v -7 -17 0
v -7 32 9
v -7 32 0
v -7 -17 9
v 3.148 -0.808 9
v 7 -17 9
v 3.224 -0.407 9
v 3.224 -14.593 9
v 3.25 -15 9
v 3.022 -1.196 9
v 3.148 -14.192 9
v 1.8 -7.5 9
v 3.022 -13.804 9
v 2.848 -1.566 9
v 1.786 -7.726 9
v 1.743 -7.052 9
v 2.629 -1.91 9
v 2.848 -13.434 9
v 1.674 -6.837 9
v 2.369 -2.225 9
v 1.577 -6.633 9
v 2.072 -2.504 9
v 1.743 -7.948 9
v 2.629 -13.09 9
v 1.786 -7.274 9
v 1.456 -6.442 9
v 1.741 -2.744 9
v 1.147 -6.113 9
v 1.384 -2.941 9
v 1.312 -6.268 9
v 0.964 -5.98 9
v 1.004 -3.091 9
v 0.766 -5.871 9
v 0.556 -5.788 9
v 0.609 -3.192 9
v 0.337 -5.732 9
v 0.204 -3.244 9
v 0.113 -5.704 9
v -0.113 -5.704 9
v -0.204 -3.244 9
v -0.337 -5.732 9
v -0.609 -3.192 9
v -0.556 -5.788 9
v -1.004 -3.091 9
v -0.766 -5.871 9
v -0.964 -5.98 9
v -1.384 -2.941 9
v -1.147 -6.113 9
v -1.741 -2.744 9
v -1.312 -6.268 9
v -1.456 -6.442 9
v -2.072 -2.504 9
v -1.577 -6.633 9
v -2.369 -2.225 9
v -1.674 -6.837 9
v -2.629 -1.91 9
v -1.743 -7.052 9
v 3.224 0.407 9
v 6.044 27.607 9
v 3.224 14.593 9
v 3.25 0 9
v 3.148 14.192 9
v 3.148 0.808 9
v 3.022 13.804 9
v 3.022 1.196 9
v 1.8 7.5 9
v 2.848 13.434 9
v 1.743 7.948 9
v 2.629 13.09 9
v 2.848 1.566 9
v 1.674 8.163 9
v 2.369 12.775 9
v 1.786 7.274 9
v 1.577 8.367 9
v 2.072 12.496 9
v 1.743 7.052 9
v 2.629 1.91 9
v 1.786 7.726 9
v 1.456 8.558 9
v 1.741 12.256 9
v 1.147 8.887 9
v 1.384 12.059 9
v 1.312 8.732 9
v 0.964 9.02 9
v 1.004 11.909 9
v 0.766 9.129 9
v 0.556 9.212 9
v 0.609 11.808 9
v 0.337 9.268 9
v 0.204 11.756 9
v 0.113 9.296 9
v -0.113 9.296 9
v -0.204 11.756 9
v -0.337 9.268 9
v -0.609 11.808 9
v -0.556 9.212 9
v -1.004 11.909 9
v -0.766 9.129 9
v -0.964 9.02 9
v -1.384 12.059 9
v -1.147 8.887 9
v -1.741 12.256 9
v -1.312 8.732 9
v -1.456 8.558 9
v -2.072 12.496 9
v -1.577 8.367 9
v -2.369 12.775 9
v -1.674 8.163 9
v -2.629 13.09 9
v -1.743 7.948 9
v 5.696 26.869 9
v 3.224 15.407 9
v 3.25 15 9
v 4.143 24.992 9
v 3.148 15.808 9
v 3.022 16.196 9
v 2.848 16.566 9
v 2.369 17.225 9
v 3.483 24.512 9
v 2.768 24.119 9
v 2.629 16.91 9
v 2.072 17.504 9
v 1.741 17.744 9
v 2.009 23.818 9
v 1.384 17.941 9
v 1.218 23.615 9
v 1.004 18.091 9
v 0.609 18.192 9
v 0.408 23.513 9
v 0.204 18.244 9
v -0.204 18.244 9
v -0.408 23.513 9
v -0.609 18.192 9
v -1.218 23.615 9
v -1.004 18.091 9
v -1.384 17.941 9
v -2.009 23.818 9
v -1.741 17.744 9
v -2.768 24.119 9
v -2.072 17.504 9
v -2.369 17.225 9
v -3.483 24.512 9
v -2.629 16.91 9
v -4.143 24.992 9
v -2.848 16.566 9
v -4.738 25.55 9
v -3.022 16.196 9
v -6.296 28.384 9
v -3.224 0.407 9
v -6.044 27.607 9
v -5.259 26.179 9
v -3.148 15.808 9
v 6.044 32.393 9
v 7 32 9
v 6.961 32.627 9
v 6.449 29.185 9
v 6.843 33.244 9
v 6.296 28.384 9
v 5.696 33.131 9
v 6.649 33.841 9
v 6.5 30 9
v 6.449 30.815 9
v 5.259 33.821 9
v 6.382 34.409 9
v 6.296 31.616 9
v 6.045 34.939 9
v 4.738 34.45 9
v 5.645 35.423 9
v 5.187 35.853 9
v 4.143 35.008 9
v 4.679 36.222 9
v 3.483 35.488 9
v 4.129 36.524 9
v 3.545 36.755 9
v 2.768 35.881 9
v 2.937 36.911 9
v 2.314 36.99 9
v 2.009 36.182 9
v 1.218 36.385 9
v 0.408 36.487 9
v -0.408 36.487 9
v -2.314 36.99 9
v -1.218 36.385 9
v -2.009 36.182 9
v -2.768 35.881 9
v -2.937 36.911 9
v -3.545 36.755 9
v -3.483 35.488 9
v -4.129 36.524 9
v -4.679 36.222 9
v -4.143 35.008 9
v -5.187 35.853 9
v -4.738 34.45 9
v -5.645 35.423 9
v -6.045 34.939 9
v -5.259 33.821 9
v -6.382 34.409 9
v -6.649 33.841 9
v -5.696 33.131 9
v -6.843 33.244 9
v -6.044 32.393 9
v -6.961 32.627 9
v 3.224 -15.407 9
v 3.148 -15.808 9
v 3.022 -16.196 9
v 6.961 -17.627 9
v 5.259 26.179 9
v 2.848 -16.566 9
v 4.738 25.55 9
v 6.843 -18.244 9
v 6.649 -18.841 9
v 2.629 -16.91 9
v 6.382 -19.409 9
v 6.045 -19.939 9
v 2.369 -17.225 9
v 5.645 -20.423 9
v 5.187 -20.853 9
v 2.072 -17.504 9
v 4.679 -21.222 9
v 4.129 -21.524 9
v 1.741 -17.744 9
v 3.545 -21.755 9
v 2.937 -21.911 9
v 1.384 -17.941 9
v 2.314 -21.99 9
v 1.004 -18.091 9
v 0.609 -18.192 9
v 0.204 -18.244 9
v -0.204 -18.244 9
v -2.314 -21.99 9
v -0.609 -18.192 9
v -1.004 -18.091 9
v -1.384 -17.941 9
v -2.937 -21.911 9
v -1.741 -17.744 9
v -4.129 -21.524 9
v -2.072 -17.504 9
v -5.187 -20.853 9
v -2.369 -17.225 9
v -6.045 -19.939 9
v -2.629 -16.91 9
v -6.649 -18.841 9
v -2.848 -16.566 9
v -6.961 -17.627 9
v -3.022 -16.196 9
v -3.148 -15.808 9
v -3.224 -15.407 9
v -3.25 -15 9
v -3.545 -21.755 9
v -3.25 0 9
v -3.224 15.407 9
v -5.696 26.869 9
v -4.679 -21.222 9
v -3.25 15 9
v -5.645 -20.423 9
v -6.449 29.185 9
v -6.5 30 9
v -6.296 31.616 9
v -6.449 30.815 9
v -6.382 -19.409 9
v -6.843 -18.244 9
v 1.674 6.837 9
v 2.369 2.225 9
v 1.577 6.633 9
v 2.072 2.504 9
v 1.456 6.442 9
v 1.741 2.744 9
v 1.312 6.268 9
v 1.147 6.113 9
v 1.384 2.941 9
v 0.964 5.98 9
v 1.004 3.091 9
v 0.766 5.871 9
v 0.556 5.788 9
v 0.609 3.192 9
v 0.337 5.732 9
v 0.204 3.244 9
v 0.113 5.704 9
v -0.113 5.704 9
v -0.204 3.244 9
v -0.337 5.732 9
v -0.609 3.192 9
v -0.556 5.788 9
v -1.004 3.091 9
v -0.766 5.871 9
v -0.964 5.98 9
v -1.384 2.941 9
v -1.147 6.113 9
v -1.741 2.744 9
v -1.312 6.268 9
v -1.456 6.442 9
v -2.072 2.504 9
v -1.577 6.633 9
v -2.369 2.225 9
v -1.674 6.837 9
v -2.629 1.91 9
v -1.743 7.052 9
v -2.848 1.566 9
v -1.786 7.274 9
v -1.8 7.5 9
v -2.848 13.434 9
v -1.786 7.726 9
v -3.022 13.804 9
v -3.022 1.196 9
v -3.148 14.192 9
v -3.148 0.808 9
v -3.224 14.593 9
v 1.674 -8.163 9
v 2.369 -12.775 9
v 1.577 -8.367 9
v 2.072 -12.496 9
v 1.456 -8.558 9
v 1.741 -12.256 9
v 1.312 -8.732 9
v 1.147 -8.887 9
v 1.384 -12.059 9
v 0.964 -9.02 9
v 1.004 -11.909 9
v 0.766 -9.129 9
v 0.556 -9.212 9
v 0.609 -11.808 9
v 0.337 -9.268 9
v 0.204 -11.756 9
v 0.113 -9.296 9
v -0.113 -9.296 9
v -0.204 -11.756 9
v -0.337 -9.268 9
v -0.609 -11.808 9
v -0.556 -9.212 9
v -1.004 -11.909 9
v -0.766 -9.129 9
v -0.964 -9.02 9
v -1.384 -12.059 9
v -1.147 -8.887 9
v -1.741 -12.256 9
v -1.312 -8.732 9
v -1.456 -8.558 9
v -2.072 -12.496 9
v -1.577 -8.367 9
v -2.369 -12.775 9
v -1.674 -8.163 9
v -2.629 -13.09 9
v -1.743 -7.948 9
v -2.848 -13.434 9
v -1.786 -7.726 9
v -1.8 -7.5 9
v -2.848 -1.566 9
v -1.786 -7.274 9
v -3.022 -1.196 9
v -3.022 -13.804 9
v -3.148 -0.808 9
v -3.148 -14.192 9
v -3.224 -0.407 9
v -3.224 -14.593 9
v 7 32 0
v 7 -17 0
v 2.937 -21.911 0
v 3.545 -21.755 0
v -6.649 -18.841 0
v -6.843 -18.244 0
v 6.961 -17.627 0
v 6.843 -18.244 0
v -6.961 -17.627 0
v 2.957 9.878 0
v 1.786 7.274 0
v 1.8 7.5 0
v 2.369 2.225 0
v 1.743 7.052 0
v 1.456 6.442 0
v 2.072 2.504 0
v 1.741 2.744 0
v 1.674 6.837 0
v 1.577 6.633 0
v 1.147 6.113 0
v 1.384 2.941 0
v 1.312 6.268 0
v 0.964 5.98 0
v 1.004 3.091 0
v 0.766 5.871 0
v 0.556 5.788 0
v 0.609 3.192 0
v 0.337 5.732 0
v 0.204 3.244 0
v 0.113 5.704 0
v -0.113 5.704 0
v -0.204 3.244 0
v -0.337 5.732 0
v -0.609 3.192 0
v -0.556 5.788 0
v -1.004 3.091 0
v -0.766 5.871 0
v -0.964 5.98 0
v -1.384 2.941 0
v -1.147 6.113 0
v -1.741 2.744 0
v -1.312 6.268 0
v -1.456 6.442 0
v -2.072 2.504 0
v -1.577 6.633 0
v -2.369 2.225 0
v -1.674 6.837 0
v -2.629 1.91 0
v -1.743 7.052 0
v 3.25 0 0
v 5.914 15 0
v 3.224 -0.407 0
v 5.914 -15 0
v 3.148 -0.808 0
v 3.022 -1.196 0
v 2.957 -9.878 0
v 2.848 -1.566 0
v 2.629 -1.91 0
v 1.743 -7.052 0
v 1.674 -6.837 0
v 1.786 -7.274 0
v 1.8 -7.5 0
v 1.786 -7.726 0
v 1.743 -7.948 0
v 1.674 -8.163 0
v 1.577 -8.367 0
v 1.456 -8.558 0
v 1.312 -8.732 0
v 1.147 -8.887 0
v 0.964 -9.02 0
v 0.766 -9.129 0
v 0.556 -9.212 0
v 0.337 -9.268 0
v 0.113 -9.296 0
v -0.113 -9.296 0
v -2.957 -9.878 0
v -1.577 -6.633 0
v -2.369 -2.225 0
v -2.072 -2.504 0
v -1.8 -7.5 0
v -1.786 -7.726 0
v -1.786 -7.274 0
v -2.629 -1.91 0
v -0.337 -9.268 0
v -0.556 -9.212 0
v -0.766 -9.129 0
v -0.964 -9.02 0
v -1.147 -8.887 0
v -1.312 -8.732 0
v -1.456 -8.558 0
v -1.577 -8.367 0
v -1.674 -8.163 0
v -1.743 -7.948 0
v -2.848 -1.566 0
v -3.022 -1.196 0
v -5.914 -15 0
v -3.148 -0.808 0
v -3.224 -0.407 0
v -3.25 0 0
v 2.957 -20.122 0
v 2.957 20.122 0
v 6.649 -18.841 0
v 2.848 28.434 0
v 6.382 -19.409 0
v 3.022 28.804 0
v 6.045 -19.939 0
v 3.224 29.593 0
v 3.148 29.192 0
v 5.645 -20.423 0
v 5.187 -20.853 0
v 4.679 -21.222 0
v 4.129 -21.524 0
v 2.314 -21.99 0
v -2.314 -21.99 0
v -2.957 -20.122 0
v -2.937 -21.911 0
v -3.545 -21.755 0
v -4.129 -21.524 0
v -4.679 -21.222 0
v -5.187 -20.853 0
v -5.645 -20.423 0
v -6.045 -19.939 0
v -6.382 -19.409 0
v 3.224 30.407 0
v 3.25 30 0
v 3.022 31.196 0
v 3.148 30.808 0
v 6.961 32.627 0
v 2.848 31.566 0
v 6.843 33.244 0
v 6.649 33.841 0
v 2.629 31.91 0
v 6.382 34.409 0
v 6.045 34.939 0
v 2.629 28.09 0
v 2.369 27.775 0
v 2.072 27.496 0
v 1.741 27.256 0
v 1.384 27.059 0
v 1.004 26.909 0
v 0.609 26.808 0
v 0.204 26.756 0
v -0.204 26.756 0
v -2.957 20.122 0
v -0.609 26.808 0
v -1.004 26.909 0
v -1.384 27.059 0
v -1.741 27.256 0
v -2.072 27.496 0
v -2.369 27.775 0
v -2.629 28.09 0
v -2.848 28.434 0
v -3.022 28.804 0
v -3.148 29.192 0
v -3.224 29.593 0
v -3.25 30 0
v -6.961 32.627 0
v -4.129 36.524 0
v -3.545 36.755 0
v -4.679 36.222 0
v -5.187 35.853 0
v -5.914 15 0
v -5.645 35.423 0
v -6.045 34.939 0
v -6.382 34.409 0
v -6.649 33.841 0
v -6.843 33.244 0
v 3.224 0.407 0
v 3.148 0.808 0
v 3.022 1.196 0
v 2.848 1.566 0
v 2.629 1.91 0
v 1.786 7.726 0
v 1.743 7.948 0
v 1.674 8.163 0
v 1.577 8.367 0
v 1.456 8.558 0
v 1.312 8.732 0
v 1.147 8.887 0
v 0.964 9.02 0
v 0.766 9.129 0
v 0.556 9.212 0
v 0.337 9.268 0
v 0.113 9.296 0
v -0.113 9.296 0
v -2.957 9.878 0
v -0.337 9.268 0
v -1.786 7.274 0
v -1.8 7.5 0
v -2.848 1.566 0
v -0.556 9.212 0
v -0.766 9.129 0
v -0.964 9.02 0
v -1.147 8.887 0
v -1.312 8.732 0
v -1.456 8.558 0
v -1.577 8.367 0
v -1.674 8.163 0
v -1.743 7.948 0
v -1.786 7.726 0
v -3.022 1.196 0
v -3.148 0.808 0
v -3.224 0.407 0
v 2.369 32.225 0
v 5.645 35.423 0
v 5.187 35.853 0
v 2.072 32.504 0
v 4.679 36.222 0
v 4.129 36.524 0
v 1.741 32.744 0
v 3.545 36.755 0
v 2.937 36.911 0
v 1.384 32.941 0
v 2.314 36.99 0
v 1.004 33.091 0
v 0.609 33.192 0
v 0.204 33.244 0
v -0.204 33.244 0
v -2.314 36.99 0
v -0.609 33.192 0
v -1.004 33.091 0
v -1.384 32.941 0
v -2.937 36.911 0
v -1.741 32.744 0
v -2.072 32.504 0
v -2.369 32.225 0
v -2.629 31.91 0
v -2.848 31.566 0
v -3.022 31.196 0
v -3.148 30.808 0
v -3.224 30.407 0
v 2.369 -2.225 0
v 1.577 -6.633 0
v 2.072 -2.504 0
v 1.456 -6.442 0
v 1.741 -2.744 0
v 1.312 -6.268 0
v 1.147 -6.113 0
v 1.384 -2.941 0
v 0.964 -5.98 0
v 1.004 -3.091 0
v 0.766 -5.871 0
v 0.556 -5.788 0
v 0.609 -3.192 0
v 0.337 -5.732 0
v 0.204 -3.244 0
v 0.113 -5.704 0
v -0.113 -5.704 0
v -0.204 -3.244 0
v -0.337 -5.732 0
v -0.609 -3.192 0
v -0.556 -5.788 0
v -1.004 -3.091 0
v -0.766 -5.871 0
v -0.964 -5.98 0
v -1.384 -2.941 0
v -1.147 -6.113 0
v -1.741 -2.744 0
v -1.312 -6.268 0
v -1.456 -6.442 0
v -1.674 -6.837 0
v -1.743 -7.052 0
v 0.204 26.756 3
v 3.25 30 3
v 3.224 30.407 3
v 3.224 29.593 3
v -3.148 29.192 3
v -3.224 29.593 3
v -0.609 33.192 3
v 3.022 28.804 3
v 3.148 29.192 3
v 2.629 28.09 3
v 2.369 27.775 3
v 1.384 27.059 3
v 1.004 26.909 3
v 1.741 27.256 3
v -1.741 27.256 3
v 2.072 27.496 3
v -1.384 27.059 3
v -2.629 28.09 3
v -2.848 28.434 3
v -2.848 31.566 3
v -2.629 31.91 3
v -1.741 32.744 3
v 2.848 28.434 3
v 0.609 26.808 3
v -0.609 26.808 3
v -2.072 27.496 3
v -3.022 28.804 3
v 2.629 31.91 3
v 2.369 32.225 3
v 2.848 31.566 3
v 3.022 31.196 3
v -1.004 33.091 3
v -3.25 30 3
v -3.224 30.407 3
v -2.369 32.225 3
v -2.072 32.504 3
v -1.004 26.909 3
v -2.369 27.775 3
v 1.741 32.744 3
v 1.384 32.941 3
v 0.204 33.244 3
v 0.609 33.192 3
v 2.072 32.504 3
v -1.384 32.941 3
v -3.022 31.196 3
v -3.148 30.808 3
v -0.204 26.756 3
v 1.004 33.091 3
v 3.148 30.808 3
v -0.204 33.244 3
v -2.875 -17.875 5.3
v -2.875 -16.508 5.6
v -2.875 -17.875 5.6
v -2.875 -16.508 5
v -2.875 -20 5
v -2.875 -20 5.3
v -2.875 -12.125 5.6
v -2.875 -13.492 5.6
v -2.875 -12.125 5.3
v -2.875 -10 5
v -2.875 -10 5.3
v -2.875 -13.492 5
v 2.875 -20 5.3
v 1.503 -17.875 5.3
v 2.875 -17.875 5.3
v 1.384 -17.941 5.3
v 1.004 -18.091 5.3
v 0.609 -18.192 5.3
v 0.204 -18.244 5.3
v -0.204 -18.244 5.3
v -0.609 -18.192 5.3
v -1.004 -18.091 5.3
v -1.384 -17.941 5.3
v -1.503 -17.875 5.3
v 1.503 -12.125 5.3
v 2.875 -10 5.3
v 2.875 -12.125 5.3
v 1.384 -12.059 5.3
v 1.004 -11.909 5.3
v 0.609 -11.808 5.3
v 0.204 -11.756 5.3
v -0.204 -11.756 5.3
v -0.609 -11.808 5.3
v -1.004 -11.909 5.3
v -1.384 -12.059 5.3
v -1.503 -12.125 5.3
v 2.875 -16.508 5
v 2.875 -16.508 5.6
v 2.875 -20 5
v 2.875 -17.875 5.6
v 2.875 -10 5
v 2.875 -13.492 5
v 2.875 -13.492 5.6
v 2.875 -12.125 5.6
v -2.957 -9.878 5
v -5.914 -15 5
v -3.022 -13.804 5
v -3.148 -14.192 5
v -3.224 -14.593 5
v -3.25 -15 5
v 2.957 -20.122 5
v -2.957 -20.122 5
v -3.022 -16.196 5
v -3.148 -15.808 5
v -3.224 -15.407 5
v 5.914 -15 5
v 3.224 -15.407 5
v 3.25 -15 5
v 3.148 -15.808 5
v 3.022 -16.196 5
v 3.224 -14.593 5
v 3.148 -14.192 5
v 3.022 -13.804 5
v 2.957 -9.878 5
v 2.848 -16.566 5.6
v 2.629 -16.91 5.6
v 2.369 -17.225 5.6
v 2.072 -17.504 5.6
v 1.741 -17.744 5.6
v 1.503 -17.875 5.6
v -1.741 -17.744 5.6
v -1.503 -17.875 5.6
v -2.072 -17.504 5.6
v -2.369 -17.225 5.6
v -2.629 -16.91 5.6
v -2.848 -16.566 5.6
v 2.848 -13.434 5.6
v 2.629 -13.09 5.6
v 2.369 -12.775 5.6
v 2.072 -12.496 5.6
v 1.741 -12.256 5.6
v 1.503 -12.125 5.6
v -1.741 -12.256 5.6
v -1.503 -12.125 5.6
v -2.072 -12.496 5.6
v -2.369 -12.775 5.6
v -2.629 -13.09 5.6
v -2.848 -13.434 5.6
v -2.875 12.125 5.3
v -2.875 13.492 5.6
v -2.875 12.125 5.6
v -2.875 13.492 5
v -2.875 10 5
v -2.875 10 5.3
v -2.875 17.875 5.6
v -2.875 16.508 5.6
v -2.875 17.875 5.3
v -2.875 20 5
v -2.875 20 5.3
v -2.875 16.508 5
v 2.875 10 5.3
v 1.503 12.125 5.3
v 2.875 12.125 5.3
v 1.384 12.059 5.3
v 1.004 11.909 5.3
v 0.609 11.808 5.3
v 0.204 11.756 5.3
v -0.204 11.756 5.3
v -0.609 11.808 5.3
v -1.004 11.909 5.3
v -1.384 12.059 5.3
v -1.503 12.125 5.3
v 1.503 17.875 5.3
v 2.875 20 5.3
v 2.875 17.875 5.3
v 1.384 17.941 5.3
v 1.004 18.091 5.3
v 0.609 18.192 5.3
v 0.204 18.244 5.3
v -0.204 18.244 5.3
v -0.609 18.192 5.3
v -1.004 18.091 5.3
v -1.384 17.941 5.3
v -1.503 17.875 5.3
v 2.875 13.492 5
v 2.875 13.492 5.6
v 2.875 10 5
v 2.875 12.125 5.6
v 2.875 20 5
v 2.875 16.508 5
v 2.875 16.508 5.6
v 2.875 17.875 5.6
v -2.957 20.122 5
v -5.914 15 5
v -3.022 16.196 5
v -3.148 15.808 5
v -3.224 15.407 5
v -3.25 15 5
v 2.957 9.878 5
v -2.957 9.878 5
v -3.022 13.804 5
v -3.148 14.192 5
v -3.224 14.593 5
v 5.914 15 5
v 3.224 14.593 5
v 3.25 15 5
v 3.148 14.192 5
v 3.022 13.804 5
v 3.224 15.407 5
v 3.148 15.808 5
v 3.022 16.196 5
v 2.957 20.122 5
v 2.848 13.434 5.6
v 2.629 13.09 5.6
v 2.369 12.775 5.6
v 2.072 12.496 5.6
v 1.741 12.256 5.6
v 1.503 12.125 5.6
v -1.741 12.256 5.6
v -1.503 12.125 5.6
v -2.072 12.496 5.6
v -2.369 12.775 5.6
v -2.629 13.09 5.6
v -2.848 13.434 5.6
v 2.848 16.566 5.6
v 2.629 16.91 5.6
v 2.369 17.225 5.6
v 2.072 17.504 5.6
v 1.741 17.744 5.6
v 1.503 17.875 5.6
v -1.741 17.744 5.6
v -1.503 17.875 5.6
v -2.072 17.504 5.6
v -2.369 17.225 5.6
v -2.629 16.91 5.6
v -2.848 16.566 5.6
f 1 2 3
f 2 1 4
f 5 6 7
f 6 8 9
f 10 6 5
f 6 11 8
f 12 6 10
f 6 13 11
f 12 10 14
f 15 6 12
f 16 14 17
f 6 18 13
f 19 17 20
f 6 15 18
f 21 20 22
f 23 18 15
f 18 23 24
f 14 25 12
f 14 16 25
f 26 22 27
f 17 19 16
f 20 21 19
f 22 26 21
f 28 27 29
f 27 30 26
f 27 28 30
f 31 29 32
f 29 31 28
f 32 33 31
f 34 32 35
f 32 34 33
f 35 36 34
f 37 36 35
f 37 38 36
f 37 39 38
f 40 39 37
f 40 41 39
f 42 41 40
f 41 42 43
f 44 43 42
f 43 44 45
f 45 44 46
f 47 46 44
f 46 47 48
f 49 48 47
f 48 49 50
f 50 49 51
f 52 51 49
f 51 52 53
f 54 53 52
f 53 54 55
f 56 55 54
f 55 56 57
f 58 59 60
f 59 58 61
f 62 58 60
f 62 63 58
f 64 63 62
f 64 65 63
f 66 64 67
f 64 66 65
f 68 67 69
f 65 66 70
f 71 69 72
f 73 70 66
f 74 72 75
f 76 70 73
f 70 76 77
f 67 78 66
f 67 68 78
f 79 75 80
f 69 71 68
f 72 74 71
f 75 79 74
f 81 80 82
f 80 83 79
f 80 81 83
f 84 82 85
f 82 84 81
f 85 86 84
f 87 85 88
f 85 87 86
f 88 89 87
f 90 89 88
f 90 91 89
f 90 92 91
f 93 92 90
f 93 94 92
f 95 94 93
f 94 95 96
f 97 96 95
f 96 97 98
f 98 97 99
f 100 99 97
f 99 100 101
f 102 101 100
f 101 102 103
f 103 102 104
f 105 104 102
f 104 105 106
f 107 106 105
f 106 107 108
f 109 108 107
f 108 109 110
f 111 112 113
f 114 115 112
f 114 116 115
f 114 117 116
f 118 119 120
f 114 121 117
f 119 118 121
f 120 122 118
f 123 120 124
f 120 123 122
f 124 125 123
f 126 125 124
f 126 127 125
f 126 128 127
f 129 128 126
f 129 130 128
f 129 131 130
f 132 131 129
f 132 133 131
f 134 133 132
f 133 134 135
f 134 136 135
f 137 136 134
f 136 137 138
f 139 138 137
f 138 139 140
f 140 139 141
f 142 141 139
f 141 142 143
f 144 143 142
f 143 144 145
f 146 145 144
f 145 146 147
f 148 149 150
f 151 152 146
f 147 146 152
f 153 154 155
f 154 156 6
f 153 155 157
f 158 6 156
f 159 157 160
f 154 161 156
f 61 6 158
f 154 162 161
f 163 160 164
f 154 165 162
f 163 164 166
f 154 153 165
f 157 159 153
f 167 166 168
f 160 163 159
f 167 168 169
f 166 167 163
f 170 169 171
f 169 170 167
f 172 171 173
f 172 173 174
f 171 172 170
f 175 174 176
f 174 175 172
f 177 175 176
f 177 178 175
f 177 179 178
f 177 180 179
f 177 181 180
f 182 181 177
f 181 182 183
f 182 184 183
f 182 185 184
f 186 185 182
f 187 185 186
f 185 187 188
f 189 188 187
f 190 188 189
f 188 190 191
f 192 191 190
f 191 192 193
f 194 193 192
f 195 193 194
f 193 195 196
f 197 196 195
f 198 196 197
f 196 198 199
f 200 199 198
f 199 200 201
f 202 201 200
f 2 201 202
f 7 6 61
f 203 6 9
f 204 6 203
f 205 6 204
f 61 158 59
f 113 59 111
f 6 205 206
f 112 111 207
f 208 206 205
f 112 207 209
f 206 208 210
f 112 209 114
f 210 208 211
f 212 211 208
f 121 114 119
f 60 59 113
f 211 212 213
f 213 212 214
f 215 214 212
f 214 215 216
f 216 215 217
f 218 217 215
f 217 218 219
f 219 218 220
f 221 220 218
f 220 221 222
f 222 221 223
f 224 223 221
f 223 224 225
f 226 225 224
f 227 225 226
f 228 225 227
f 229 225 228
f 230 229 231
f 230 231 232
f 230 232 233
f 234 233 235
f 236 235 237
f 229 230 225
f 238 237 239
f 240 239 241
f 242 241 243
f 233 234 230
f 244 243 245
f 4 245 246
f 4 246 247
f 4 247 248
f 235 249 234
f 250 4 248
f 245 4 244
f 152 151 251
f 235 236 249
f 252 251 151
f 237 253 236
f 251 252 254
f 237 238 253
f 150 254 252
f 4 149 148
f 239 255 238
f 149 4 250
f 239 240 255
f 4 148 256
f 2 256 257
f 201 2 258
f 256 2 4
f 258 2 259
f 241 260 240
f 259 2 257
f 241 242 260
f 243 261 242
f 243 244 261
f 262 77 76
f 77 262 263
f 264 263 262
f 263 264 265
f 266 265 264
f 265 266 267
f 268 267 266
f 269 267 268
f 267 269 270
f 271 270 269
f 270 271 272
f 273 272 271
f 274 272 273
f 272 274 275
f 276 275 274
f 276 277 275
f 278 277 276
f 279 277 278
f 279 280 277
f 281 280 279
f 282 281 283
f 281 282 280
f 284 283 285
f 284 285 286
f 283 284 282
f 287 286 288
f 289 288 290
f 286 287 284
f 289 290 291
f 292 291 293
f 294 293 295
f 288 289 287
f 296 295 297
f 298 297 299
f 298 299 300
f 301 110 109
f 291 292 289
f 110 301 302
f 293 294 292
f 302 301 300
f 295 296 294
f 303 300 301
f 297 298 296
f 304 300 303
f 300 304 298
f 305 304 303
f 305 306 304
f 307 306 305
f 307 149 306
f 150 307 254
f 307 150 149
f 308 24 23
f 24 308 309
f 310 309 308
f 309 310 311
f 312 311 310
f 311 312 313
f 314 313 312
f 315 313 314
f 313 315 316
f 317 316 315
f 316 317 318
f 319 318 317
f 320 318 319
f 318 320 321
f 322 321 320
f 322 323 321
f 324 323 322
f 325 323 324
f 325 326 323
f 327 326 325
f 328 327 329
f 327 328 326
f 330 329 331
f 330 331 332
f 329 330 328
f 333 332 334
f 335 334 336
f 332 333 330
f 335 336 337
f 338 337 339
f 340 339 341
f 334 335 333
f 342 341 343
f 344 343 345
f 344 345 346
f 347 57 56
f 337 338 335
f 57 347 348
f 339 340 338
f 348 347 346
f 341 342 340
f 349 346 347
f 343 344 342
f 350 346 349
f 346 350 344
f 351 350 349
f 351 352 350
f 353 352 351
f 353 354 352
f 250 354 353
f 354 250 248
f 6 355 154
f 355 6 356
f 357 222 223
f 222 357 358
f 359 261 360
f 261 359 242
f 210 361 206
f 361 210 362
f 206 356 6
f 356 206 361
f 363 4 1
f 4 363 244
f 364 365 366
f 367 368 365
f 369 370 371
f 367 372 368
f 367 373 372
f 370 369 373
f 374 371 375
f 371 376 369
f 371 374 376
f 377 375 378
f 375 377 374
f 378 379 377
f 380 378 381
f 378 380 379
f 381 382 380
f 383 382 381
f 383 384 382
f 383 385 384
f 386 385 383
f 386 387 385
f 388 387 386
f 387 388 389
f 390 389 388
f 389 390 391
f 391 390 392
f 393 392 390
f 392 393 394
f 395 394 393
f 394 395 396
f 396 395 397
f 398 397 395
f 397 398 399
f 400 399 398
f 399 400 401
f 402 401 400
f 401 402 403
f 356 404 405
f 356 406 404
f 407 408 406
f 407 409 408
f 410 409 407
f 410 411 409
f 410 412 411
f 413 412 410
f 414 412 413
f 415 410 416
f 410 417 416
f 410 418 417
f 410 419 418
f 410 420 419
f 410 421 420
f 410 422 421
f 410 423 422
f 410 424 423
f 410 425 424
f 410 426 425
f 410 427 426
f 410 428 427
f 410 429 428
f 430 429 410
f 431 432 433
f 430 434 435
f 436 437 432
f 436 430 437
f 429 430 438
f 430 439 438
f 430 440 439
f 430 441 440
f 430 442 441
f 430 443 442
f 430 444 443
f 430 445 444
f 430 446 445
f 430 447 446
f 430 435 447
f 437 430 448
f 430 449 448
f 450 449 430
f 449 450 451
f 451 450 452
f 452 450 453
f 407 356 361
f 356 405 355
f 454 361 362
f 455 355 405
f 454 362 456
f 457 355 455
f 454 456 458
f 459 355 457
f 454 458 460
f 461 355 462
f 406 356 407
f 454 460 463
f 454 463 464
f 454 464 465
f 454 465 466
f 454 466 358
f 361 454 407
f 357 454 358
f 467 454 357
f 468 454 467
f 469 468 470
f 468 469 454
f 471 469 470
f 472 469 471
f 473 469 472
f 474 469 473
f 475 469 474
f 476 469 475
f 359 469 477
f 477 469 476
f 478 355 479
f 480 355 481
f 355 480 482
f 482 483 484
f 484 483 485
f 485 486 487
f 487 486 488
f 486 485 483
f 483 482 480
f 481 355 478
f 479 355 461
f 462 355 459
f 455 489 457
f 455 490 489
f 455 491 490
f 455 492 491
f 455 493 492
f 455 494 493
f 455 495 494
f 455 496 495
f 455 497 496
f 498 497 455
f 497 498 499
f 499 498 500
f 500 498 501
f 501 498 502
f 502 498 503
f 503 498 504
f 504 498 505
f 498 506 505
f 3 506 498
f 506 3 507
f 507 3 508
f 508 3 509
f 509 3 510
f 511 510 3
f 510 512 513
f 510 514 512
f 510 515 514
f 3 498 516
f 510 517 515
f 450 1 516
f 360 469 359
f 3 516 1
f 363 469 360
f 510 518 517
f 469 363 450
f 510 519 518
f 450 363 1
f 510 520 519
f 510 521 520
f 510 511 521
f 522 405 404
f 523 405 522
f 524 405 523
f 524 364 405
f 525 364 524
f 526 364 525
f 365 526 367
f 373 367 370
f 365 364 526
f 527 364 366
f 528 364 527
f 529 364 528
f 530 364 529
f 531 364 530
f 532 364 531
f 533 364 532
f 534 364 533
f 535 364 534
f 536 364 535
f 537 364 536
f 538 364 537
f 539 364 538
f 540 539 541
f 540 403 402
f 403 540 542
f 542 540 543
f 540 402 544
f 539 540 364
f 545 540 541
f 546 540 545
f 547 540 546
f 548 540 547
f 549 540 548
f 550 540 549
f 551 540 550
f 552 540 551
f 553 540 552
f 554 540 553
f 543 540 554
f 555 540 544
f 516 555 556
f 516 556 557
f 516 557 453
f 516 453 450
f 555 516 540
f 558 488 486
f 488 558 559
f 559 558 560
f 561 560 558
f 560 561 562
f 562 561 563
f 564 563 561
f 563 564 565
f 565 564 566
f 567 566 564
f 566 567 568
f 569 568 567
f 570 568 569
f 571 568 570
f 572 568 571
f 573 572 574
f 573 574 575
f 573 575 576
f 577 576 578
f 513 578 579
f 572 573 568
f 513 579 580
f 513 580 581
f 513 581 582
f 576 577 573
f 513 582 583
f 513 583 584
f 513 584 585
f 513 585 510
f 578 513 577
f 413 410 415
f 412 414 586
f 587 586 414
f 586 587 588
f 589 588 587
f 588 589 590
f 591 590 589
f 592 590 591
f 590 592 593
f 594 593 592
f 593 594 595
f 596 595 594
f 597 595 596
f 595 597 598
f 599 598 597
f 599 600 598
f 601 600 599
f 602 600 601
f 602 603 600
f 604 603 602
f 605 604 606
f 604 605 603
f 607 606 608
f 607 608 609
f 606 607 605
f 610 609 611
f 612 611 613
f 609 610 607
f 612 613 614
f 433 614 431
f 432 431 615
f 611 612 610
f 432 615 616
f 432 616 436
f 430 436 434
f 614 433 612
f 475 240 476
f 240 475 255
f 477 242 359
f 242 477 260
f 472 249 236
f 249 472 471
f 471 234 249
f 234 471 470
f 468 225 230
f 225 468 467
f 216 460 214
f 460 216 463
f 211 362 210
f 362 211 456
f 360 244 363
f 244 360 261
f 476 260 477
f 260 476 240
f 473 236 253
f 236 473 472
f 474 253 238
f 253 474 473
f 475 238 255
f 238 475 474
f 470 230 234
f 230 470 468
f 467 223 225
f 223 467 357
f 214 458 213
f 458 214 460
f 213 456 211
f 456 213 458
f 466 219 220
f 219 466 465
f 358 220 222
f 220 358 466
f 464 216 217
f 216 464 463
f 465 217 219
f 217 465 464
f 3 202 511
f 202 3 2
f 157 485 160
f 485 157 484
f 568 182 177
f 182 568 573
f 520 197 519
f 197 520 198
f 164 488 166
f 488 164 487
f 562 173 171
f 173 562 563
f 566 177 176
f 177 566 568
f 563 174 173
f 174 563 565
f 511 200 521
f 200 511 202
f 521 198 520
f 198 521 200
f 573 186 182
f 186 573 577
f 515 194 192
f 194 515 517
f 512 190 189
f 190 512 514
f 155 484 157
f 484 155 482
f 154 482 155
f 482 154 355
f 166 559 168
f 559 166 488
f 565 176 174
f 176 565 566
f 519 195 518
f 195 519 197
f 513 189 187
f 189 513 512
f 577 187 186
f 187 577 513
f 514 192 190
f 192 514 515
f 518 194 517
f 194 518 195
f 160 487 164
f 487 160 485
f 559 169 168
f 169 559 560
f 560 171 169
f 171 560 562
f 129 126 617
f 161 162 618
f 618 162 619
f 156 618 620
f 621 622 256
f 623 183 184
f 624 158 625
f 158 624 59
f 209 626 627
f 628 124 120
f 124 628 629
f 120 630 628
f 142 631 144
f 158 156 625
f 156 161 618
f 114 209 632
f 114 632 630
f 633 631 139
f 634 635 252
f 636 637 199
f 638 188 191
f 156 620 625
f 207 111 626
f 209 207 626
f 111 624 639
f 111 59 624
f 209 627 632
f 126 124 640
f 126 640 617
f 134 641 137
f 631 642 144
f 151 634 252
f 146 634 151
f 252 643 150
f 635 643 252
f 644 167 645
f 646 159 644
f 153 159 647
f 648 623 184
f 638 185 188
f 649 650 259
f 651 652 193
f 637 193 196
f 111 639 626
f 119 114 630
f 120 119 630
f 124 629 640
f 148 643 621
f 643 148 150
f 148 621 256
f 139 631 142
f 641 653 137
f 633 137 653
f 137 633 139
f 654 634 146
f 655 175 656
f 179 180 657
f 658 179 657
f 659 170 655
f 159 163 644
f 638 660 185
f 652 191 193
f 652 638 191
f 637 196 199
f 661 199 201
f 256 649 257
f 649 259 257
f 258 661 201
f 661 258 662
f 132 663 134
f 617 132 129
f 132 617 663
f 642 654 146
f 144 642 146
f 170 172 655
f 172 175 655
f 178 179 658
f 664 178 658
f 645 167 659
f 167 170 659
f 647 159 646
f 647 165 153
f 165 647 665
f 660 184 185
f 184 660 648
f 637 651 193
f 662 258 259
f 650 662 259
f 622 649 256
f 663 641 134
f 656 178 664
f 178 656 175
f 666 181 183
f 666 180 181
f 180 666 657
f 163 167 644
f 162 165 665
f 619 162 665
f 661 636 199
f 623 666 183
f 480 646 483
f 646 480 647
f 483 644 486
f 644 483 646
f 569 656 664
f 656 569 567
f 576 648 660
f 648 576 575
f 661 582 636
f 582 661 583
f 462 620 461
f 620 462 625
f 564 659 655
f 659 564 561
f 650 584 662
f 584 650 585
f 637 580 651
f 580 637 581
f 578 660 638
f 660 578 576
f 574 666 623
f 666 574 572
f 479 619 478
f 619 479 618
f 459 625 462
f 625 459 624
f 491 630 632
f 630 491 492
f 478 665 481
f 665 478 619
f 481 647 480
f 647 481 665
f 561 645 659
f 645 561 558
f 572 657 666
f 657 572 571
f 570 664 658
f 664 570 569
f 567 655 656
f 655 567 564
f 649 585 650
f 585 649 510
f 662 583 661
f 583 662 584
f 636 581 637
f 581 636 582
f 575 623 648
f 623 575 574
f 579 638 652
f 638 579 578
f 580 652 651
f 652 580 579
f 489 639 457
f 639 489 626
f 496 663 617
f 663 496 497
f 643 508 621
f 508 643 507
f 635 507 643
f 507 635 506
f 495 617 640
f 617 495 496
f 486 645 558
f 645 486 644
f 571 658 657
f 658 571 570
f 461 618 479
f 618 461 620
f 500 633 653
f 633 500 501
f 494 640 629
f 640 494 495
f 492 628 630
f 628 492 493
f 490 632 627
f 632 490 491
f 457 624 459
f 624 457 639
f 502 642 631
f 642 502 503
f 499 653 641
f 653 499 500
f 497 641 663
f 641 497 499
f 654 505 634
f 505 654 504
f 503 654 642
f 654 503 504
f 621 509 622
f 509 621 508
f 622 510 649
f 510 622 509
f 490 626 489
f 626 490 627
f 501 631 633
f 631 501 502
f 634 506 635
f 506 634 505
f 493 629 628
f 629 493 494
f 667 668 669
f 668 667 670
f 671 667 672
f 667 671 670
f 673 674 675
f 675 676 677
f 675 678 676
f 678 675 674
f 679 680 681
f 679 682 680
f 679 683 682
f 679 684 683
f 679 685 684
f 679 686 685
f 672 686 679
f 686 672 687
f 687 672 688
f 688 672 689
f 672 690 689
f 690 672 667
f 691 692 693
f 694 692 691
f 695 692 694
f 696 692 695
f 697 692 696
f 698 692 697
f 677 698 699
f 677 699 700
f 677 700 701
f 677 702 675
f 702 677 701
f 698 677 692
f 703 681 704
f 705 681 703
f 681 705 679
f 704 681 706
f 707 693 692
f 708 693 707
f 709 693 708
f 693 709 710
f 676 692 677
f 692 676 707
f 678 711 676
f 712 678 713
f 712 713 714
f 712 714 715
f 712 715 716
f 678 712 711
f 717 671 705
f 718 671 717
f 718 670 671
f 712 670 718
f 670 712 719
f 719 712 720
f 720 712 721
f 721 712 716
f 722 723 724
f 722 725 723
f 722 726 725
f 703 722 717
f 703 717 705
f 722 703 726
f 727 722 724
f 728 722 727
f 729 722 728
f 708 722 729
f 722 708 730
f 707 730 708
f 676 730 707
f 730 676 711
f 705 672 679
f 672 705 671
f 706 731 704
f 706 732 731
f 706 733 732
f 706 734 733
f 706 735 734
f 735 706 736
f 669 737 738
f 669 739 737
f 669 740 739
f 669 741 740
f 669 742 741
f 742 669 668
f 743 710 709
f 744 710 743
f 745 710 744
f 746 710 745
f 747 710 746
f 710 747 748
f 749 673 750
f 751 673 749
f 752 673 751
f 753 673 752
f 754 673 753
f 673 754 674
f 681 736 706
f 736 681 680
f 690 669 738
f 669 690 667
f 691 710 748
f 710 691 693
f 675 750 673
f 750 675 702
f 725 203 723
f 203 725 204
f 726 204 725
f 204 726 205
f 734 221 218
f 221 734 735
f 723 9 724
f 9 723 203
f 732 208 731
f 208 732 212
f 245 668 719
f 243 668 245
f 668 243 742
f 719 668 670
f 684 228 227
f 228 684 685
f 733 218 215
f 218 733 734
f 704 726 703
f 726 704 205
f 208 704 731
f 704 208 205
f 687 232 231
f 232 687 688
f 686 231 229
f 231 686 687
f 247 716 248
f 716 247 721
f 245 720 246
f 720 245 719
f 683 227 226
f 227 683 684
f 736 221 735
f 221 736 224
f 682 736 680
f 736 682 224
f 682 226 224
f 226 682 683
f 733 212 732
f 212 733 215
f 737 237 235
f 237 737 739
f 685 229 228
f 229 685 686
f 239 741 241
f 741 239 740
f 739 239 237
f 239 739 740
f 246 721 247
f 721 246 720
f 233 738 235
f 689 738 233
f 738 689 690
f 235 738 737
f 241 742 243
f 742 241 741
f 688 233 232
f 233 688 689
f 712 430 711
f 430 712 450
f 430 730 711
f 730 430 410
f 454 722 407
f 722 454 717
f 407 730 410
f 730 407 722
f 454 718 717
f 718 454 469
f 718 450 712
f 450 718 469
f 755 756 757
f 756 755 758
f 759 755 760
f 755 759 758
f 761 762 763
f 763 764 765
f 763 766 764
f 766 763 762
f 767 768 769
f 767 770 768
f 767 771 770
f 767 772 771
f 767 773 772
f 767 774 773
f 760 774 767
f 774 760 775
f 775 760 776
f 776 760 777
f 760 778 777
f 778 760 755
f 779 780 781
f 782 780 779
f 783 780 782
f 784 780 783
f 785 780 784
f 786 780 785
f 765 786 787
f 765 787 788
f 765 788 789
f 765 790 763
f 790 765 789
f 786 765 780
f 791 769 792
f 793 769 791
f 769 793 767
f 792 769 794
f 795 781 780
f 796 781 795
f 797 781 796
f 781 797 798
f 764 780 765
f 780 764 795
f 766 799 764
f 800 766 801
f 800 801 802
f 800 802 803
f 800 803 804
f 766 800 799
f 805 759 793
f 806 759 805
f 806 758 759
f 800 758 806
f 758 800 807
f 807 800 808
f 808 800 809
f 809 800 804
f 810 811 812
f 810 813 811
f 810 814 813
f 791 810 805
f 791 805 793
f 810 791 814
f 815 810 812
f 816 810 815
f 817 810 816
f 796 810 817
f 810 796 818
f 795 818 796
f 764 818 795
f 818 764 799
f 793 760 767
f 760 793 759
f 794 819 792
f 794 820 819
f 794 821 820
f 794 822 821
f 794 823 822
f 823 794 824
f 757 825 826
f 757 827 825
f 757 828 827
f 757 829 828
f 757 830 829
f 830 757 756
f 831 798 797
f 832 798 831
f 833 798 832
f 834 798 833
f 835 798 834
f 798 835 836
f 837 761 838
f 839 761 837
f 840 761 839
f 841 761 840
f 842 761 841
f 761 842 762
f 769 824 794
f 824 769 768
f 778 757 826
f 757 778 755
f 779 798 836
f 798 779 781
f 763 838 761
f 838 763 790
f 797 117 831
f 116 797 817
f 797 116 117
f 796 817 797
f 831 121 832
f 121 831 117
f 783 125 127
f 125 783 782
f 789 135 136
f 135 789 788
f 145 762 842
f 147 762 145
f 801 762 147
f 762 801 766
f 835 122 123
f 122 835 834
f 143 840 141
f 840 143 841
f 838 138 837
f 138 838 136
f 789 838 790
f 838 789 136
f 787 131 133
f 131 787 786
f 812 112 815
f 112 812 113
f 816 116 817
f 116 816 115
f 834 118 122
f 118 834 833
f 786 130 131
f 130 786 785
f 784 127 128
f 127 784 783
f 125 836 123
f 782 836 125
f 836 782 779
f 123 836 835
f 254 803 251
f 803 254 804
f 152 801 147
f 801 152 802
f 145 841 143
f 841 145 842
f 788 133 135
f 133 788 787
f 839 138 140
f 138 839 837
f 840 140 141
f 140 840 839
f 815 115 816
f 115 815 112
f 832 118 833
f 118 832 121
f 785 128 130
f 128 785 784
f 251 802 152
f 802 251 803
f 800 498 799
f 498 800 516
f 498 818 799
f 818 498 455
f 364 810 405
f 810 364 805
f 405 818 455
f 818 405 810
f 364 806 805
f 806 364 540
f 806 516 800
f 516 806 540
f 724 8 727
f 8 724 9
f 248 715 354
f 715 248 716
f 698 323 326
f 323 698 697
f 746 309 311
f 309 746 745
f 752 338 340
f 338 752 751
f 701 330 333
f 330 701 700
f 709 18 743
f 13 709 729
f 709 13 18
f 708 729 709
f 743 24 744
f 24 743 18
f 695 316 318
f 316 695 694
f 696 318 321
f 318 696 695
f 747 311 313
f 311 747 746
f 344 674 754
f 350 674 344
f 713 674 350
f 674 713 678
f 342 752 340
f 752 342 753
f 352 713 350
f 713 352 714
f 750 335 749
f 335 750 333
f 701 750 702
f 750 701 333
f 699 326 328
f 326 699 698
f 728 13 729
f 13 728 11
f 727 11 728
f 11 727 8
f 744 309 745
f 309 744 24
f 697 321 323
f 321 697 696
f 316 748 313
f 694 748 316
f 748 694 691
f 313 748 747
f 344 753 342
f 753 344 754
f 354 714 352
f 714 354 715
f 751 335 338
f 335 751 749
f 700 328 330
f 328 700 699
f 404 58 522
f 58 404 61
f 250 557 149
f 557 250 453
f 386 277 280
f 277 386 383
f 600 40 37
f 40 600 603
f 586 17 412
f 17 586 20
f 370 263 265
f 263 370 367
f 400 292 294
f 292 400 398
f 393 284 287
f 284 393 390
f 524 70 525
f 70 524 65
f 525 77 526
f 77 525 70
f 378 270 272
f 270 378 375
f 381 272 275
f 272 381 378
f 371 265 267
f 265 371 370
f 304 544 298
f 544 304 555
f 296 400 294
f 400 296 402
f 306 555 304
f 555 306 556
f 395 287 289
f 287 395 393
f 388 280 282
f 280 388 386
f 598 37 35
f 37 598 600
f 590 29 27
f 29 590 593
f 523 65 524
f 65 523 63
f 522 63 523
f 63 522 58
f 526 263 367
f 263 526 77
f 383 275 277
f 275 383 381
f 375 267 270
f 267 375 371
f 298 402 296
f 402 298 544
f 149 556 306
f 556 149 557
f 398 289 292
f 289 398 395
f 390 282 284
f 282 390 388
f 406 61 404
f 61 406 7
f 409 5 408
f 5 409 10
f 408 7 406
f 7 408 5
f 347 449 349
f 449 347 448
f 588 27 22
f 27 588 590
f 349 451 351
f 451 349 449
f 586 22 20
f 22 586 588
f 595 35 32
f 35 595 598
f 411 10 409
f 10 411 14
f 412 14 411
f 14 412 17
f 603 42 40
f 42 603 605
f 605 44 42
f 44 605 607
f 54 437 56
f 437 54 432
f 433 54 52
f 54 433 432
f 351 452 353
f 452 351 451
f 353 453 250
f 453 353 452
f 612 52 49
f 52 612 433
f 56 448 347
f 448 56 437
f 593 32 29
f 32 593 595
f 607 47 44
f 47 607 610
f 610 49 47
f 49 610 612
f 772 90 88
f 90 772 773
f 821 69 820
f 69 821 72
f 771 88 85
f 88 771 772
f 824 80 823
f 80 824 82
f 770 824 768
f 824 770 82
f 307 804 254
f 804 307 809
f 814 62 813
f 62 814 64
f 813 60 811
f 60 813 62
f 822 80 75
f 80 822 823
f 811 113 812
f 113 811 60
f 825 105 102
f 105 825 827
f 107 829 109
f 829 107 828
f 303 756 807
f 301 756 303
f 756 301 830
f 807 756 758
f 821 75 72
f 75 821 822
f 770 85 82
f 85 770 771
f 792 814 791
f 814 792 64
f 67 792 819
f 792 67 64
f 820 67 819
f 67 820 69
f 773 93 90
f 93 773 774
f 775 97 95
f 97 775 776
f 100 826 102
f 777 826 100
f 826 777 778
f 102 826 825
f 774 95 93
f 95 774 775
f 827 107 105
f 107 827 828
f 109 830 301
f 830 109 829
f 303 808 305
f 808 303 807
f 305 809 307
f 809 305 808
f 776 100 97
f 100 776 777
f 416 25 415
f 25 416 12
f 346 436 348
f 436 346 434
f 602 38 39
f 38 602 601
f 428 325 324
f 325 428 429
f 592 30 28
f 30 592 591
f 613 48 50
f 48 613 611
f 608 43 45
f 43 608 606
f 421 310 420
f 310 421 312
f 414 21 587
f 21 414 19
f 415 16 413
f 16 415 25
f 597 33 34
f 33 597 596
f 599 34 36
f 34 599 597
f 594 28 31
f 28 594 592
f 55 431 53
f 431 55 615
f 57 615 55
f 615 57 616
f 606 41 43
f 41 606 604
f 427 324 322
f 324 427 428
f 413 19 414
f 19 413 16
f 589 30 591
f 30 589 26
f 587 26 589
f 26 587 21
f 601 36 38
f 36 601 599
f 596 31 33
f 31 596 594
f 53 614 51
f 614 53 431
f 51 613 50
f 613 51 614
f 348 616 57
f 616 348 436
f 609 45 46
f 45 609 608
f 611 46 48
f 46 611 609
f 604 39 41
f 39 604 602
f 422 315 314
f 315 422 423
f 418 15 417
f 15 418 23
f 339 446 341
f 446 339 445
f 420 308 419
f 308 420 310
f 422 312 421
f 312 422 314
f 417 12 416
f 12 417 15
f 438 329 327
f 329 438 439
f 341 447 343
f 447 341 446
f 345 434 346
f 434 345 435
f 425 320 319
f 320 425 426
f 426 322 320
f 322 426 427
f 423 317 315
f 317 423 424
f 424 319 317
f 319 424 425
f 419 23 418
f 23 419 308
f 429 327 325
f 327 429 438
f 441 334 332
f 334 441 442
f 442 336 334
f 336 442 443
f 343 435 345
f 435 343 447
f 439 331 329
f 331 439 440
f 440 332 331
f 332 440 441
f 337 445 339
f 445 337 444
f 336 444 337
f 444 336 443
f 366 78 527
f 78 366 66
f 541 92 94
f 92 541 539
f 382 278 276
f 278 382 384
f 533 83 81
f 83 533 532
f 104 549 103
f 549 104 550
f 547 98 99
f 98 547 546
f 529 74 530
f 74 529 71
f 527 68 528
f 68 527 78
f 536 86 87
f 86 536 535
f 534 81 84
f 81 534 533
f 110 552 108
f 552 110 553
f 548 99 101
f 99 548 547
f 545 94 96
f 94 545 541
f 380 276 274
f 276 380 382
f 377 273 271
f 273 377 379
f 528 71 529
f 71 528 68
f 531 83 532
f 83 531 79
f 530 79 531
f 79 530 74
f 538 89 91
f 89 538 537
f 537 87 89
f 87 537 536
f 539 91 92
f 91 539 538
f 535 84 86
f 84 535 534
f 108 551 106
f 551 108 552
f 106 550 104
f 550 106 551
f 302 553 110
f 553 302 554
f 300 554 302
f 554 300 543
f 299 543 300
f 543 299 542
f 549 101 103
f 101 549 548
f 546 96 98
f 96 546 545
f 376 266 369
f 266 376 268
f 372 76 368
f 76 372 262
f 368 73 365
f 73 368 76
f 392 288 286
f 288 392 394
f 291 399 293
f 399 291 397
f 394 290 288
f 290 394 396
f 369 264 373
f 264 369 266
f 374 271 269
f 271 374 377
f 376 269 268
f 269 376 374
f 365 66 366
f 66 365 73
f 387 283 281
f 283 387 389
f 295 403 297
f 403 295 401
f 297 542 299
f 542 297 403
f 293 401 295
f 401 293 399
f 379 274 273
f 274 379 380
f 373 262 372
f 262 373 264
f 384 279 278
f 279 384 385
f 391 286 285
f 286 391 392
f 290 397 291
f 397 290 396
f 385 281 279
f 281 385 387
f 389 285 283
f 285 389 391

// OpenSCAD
$fn = 50;


difference() {
	union() {
		hull() {
			translate(v = [-2.0000000000, 17.0000000000, 0]) {
				cylinder(h = 9, r = 5);
			}
			translate(v = [2.0000000000, 17.0000000000, 0]) {
				cylinder(h = 9, r = 5);
			}
			translate(v = [-2.0000000000, -17.0000000000, 0]) {
				cylinder(h = 9, r = 5);
			}
			translate(v = [2.0000000000, -17.0000000000, 0]) {
				cylinder(h = 9, r = 5);
			}
		}
		translate(v = [0.0000000000, 22.5000000000, 0]) {
			hull() {
				translate(v = [-2.0000000000, 9.5000000000, 0]) {
					cylinder(h = 9, r = 5);
				}
				translate(v = [2.0000000000, 9.5000000000, 0]) {
					cylinder(h = 9, r = 5);
				}
				translate(v = [-2.0000000000, -9.5000000000, 0]) {
					cylinder(h = 9, r = 5);
				}
				translate(v = [2.0000000000, -9.5000000000, 0]) {
					cylinder(h = 9, r = 5);
				}
			}
		}
		translate(v = [0.0000000000, 22.5000000000, 0]) {
			hull() {
				translate(v = [-2.0000000000, 9.5000000000, 0]) {
					cylinder(h = 9, r = 5);
				}
				translate(v = [2.0000000000, 9.5000000000, 0]) {
					cylinder(h = 9, r = 5);
				}
				translate(v = [-2.0000000000, -9.5000000000, 0]) {
					cylinder(h = 9, r = 5);
				}
				translate(v = [2.0000000000, -9.5000000000, 0]) {
					cylinder(h = 9, r = 5);
				}
			}
		}
	}
	union() {
		translate(v = [0.0000000000, 30.0000000000, 9]) {
			rotate(a = [0, 0, 0]) {
				difference() {
					union() {
						#translate(v = [0, 0, -9.0000000000]) {
							cylinder(h = 9, r = 2.2500000000);
						}
						#translate(v = [0, 0, -6]) {
							cylinder(h = 6, r1 = 3.2500000000, r2 = 6.5000000000);
						}
						#translate(v = [0, 0, -9.0000000000]) {
							cylinder(h = 9, r = 3.2500000000);
						}
						#translate(v = [0, 0, -9.0000000000]) {
							cylinder(h = 9, r = 2.2500000000);
						}
					}
					union();
				}
			}
		}
		translate(v = [0.0000000000, 30.0000000000, 9]) {
			rotate(a = [0, 0, 0]) {
				difference() {
					union() {
						#translate(v = [0, 0, -9.0000000000]) {
							cylinder(h = 9, r = 2.2500000000);
						}
						#translate(v = [0, 0, -6]) {
							cylinder(h = 6, r1 = 3.2500000000, r2 = 6.5000000000);
						}
						#translate(v = [0, 0, -9.0000000000]) {
							cylinder(h = 9, r = 3.2500000000);
						}
						#translate(v = [0, 0, -9.0000000000]) {
							cylinder(h = 9, r = 2.2500000000);
						}
					}
					union();
				}
			}
		}
		translate(v = [0.0000000000, -15.0000000000, 0]) {
			rotate(a = [0, 0, 0]) {
				difference() {
					union() {
						#translate(v = [-2.8750000000, -5.0000000000, -0.3000000000]) {
							cube(size = [5.7500000000, 10, 0.3000000000]);
						}
						#translate(v = [-2.8750000000, -2.8750000000, -0.6000000000]) {
							cube(size = [5.7500000000, 5.7500000000, 0.3000000000]);
						}
						#translate(v = [-2.8750000000, -5.0000000000, 5]) {
							cube(size = [5.7500000000, 10, 0.3000000000]);
						}
						#translate(v = [-2.8750000000, -2.8750000000, 5.3000000000]) {
							cube(size = [5.7500000000, 5.7500000000, 0.3000000000]);
						}
						#translate(v = [0, 0, -100.0000000000]) {
							cylinder(h = 200, r = 3.2500000000);
						}
						#linear_extrude(height = 5) {
							polygon(points = [[5.9142500000, 0.0000000000], [2.9571250000, 5.1218907443], [-2.9571250000, 5.1218907443], [-5.9142500000, 0.0000000000], [-2.9571250000, -5.1218907443], [2.9571250000, -5.1218907443]]);
						}
						#translate(v = [-2.8750000000, -5.0000000000, -0.3000000000]) {
							cube(size = [5.7500000000, 10, 0.3000000000]);
						}
						#translate(v = [-2.8750000000, -2.8750000000, -0.6000000000]) {
							cube(size = [5.7500000000, 5.7500000000, 0.3000000000]);
						}
						#translate(v = [-2.8750000000, -5.0000000000, 5]) {
							cube(size = [5.7500000000, 10, 0.3000000000]);
						}
						#translate(v = [-2.8750000000, -2.8750000000, 5.3000000000]) {
							cube(size = [5.7500000000, 5.7500000000, 0.3000000000]);
						}
						#translate(v = [0, 0, -100.0000000000]) {
							cylinder(h = 200, r = 3.2500000000);
						}
						#translate(v = [-2.8750000000, -5.0000000000, -0.3000000000]) {
							cube(size = [5.7500000000, 10, 0.3000000000]);
						}
						#translate(v = [-2.8750000000, -2.8750000000, -0.6000000000]) {
							cube(size = [5.7500000000, 5.7500000000, 0.3000000000]);
						}
						#translate(v = [-2.8750000000, -5.0000000000, 5]) {
							cube(size = [5.7500000000, 10, 0.3000000000]);
						}
						#translate(v = [-2.8750000000, -2.8750000000, 5.3000000000]) {
							cube(size = [5.7500000000, 5.7500000000, 0.3000000000]);
						}
						#translate(v = [0, 0, -100.0000000000]) {
							cylinder(h = 200, r = 3.2500000000);
						}
					}
					union();
				}
			}
		}
		translate(v = [0.0000000000, 15.0000000000, 0]) {
			rotate(a = [0, 0, 0]) {
				difference() {
					union() {
						#translate(v = [-2.8750000000, -5.0000000000, -0.3000000000]) {
							cube(size = [5.7500000000, 10, 0.3000000000]);
						}
						#translate(v = [-2.8750000000, -2.8750000000, -0.6000000000]) {
							cube(size = [5.7500000000, 5.7500000000, 0.3000000000]);
						}
						#translate(v = [-2.8750000000, -5.0000000000, 5]) {
							cube(size = [5.7500000000, 10, 0.3000000000]);
						}
						#translate(v = [-2.8750000000, -2.8750000000, 5.3000000000]) {
							cube(size = [5.7500000000, 5.7500000000, 0.3000000000]);
						}
						#translate(v = [0, 0, -100.0000000000]) {
							cylinder(h = 200, r = 3.2500000000);
						}
						#linear_extrude(height = 5) {
							polygon(points = [[5.9142500000, 0.0000000000], [2.9571250000, 5.1218907443], [-2.9571250000, 5.1218907443], [-5.9142500000, 0.0000000000], [-2.9571250000, -5.1218907443], [2.9571250000, -5.1218907443]]);
						}
						#translate(v = [-2.8750000000, -5.0000000000, -0.3000000000]) {
							cube(size = [5.7500000000, 10, 0.3000000000]);
						}
						#translate(v = [-2.8750000000, -2.8750000000, -0.6000000000]) {
							cube(size = [5.7500000000, 5.7500000000, 0.3000000000]);
						}
						#translate(v = [-2.8750000000, -5.0000000000, 5]) {
							cube(size = [5.7500000000, 10, 0.3000000000]);
						}
						#translate(v = [-2.8750000000, -2.8750000000, 5.3000000000]) {
							cube(size = [5.7500000000, 5.7500000000, 0.3000000000]);
						}
						#translate(v = [0, 0, -100.0000000000]) {
							cylinder(h = 200, r = 3.2500000000);
						}
						#translate(v = [-2.8750000000, -5.0000000000, -0.3000000000]) {
							cube(size = [5.7500000000, 10, 0.3000000000]);
						}
						#translate(v = [-2.8750000000, -2.8750000000, -0.6000000000]) {
							cube(size = [5.7500000000, 5.7500000000, 0.3000000000]);
						}
						#translate(v = [-2.8750000000, -5.0000000000, 5]) {
							cube(size = [5.7500000000, 10, 0.3000000000]);
						}
						#translate(v = [-2.8750000000, -2.8750000000, 5.3000000000]) {
							cube(size = [5.7500000000, 5.7500000000, 0.3000000000]);
						}
						#translate(v = [0, 0, -100.0000000000]) {
							cylinder(h = 200, r = 3.2500000000);
						}
					}
					union();
				}
			}
		}
		translate(v = [0.0000000000, -15.0000000000, 0]) {
			translate(v = [0, 0, -100]) {
				cylinder(h = 200, r = 3.2500000000);
			}
		}
		translate(v = [0, 0, -100]) {
			cylinder(h = 200, r = 3.2500000000);
		}
		translate(v = [0.0000000000, 15.0000000000, 0]) {
			translate(v = [0, 0, -100]) {
				cylinder(h = 200, r = 3.2500000000);
			}
		}
		translate(v = [0.0000000000, -15.0000000000, 0]) {
			translate(v = [0, 0, -100]) {
				cylinder(h = 200, r = 1.8000000000);
			}
		}
		translate(v = [0.0000000000, -7.5000000000, 0]) {
			translate(v = [0, 0, -100]) {
				cylinder(h = 200, r = 1.8000000000);
			}
		}
		translate(v = [0, 0, -100]) {
			cylinder(h = 200, r = 1.8000000000);
		}
		translate(v = [0.0000000000, 7.5000000000, 0]) {
			translate(v = [0, 0, -100]) {
				cylinder(h = 200, r = 1.8000000000);
			}
		}
		translate(v = [0.0000000000, 15.0000000000, 0]) {
			translate(v = [0, 0, -100]) {
				cylinder(h = 200, r = 1.8000000000);
			}
		}
	}
}
